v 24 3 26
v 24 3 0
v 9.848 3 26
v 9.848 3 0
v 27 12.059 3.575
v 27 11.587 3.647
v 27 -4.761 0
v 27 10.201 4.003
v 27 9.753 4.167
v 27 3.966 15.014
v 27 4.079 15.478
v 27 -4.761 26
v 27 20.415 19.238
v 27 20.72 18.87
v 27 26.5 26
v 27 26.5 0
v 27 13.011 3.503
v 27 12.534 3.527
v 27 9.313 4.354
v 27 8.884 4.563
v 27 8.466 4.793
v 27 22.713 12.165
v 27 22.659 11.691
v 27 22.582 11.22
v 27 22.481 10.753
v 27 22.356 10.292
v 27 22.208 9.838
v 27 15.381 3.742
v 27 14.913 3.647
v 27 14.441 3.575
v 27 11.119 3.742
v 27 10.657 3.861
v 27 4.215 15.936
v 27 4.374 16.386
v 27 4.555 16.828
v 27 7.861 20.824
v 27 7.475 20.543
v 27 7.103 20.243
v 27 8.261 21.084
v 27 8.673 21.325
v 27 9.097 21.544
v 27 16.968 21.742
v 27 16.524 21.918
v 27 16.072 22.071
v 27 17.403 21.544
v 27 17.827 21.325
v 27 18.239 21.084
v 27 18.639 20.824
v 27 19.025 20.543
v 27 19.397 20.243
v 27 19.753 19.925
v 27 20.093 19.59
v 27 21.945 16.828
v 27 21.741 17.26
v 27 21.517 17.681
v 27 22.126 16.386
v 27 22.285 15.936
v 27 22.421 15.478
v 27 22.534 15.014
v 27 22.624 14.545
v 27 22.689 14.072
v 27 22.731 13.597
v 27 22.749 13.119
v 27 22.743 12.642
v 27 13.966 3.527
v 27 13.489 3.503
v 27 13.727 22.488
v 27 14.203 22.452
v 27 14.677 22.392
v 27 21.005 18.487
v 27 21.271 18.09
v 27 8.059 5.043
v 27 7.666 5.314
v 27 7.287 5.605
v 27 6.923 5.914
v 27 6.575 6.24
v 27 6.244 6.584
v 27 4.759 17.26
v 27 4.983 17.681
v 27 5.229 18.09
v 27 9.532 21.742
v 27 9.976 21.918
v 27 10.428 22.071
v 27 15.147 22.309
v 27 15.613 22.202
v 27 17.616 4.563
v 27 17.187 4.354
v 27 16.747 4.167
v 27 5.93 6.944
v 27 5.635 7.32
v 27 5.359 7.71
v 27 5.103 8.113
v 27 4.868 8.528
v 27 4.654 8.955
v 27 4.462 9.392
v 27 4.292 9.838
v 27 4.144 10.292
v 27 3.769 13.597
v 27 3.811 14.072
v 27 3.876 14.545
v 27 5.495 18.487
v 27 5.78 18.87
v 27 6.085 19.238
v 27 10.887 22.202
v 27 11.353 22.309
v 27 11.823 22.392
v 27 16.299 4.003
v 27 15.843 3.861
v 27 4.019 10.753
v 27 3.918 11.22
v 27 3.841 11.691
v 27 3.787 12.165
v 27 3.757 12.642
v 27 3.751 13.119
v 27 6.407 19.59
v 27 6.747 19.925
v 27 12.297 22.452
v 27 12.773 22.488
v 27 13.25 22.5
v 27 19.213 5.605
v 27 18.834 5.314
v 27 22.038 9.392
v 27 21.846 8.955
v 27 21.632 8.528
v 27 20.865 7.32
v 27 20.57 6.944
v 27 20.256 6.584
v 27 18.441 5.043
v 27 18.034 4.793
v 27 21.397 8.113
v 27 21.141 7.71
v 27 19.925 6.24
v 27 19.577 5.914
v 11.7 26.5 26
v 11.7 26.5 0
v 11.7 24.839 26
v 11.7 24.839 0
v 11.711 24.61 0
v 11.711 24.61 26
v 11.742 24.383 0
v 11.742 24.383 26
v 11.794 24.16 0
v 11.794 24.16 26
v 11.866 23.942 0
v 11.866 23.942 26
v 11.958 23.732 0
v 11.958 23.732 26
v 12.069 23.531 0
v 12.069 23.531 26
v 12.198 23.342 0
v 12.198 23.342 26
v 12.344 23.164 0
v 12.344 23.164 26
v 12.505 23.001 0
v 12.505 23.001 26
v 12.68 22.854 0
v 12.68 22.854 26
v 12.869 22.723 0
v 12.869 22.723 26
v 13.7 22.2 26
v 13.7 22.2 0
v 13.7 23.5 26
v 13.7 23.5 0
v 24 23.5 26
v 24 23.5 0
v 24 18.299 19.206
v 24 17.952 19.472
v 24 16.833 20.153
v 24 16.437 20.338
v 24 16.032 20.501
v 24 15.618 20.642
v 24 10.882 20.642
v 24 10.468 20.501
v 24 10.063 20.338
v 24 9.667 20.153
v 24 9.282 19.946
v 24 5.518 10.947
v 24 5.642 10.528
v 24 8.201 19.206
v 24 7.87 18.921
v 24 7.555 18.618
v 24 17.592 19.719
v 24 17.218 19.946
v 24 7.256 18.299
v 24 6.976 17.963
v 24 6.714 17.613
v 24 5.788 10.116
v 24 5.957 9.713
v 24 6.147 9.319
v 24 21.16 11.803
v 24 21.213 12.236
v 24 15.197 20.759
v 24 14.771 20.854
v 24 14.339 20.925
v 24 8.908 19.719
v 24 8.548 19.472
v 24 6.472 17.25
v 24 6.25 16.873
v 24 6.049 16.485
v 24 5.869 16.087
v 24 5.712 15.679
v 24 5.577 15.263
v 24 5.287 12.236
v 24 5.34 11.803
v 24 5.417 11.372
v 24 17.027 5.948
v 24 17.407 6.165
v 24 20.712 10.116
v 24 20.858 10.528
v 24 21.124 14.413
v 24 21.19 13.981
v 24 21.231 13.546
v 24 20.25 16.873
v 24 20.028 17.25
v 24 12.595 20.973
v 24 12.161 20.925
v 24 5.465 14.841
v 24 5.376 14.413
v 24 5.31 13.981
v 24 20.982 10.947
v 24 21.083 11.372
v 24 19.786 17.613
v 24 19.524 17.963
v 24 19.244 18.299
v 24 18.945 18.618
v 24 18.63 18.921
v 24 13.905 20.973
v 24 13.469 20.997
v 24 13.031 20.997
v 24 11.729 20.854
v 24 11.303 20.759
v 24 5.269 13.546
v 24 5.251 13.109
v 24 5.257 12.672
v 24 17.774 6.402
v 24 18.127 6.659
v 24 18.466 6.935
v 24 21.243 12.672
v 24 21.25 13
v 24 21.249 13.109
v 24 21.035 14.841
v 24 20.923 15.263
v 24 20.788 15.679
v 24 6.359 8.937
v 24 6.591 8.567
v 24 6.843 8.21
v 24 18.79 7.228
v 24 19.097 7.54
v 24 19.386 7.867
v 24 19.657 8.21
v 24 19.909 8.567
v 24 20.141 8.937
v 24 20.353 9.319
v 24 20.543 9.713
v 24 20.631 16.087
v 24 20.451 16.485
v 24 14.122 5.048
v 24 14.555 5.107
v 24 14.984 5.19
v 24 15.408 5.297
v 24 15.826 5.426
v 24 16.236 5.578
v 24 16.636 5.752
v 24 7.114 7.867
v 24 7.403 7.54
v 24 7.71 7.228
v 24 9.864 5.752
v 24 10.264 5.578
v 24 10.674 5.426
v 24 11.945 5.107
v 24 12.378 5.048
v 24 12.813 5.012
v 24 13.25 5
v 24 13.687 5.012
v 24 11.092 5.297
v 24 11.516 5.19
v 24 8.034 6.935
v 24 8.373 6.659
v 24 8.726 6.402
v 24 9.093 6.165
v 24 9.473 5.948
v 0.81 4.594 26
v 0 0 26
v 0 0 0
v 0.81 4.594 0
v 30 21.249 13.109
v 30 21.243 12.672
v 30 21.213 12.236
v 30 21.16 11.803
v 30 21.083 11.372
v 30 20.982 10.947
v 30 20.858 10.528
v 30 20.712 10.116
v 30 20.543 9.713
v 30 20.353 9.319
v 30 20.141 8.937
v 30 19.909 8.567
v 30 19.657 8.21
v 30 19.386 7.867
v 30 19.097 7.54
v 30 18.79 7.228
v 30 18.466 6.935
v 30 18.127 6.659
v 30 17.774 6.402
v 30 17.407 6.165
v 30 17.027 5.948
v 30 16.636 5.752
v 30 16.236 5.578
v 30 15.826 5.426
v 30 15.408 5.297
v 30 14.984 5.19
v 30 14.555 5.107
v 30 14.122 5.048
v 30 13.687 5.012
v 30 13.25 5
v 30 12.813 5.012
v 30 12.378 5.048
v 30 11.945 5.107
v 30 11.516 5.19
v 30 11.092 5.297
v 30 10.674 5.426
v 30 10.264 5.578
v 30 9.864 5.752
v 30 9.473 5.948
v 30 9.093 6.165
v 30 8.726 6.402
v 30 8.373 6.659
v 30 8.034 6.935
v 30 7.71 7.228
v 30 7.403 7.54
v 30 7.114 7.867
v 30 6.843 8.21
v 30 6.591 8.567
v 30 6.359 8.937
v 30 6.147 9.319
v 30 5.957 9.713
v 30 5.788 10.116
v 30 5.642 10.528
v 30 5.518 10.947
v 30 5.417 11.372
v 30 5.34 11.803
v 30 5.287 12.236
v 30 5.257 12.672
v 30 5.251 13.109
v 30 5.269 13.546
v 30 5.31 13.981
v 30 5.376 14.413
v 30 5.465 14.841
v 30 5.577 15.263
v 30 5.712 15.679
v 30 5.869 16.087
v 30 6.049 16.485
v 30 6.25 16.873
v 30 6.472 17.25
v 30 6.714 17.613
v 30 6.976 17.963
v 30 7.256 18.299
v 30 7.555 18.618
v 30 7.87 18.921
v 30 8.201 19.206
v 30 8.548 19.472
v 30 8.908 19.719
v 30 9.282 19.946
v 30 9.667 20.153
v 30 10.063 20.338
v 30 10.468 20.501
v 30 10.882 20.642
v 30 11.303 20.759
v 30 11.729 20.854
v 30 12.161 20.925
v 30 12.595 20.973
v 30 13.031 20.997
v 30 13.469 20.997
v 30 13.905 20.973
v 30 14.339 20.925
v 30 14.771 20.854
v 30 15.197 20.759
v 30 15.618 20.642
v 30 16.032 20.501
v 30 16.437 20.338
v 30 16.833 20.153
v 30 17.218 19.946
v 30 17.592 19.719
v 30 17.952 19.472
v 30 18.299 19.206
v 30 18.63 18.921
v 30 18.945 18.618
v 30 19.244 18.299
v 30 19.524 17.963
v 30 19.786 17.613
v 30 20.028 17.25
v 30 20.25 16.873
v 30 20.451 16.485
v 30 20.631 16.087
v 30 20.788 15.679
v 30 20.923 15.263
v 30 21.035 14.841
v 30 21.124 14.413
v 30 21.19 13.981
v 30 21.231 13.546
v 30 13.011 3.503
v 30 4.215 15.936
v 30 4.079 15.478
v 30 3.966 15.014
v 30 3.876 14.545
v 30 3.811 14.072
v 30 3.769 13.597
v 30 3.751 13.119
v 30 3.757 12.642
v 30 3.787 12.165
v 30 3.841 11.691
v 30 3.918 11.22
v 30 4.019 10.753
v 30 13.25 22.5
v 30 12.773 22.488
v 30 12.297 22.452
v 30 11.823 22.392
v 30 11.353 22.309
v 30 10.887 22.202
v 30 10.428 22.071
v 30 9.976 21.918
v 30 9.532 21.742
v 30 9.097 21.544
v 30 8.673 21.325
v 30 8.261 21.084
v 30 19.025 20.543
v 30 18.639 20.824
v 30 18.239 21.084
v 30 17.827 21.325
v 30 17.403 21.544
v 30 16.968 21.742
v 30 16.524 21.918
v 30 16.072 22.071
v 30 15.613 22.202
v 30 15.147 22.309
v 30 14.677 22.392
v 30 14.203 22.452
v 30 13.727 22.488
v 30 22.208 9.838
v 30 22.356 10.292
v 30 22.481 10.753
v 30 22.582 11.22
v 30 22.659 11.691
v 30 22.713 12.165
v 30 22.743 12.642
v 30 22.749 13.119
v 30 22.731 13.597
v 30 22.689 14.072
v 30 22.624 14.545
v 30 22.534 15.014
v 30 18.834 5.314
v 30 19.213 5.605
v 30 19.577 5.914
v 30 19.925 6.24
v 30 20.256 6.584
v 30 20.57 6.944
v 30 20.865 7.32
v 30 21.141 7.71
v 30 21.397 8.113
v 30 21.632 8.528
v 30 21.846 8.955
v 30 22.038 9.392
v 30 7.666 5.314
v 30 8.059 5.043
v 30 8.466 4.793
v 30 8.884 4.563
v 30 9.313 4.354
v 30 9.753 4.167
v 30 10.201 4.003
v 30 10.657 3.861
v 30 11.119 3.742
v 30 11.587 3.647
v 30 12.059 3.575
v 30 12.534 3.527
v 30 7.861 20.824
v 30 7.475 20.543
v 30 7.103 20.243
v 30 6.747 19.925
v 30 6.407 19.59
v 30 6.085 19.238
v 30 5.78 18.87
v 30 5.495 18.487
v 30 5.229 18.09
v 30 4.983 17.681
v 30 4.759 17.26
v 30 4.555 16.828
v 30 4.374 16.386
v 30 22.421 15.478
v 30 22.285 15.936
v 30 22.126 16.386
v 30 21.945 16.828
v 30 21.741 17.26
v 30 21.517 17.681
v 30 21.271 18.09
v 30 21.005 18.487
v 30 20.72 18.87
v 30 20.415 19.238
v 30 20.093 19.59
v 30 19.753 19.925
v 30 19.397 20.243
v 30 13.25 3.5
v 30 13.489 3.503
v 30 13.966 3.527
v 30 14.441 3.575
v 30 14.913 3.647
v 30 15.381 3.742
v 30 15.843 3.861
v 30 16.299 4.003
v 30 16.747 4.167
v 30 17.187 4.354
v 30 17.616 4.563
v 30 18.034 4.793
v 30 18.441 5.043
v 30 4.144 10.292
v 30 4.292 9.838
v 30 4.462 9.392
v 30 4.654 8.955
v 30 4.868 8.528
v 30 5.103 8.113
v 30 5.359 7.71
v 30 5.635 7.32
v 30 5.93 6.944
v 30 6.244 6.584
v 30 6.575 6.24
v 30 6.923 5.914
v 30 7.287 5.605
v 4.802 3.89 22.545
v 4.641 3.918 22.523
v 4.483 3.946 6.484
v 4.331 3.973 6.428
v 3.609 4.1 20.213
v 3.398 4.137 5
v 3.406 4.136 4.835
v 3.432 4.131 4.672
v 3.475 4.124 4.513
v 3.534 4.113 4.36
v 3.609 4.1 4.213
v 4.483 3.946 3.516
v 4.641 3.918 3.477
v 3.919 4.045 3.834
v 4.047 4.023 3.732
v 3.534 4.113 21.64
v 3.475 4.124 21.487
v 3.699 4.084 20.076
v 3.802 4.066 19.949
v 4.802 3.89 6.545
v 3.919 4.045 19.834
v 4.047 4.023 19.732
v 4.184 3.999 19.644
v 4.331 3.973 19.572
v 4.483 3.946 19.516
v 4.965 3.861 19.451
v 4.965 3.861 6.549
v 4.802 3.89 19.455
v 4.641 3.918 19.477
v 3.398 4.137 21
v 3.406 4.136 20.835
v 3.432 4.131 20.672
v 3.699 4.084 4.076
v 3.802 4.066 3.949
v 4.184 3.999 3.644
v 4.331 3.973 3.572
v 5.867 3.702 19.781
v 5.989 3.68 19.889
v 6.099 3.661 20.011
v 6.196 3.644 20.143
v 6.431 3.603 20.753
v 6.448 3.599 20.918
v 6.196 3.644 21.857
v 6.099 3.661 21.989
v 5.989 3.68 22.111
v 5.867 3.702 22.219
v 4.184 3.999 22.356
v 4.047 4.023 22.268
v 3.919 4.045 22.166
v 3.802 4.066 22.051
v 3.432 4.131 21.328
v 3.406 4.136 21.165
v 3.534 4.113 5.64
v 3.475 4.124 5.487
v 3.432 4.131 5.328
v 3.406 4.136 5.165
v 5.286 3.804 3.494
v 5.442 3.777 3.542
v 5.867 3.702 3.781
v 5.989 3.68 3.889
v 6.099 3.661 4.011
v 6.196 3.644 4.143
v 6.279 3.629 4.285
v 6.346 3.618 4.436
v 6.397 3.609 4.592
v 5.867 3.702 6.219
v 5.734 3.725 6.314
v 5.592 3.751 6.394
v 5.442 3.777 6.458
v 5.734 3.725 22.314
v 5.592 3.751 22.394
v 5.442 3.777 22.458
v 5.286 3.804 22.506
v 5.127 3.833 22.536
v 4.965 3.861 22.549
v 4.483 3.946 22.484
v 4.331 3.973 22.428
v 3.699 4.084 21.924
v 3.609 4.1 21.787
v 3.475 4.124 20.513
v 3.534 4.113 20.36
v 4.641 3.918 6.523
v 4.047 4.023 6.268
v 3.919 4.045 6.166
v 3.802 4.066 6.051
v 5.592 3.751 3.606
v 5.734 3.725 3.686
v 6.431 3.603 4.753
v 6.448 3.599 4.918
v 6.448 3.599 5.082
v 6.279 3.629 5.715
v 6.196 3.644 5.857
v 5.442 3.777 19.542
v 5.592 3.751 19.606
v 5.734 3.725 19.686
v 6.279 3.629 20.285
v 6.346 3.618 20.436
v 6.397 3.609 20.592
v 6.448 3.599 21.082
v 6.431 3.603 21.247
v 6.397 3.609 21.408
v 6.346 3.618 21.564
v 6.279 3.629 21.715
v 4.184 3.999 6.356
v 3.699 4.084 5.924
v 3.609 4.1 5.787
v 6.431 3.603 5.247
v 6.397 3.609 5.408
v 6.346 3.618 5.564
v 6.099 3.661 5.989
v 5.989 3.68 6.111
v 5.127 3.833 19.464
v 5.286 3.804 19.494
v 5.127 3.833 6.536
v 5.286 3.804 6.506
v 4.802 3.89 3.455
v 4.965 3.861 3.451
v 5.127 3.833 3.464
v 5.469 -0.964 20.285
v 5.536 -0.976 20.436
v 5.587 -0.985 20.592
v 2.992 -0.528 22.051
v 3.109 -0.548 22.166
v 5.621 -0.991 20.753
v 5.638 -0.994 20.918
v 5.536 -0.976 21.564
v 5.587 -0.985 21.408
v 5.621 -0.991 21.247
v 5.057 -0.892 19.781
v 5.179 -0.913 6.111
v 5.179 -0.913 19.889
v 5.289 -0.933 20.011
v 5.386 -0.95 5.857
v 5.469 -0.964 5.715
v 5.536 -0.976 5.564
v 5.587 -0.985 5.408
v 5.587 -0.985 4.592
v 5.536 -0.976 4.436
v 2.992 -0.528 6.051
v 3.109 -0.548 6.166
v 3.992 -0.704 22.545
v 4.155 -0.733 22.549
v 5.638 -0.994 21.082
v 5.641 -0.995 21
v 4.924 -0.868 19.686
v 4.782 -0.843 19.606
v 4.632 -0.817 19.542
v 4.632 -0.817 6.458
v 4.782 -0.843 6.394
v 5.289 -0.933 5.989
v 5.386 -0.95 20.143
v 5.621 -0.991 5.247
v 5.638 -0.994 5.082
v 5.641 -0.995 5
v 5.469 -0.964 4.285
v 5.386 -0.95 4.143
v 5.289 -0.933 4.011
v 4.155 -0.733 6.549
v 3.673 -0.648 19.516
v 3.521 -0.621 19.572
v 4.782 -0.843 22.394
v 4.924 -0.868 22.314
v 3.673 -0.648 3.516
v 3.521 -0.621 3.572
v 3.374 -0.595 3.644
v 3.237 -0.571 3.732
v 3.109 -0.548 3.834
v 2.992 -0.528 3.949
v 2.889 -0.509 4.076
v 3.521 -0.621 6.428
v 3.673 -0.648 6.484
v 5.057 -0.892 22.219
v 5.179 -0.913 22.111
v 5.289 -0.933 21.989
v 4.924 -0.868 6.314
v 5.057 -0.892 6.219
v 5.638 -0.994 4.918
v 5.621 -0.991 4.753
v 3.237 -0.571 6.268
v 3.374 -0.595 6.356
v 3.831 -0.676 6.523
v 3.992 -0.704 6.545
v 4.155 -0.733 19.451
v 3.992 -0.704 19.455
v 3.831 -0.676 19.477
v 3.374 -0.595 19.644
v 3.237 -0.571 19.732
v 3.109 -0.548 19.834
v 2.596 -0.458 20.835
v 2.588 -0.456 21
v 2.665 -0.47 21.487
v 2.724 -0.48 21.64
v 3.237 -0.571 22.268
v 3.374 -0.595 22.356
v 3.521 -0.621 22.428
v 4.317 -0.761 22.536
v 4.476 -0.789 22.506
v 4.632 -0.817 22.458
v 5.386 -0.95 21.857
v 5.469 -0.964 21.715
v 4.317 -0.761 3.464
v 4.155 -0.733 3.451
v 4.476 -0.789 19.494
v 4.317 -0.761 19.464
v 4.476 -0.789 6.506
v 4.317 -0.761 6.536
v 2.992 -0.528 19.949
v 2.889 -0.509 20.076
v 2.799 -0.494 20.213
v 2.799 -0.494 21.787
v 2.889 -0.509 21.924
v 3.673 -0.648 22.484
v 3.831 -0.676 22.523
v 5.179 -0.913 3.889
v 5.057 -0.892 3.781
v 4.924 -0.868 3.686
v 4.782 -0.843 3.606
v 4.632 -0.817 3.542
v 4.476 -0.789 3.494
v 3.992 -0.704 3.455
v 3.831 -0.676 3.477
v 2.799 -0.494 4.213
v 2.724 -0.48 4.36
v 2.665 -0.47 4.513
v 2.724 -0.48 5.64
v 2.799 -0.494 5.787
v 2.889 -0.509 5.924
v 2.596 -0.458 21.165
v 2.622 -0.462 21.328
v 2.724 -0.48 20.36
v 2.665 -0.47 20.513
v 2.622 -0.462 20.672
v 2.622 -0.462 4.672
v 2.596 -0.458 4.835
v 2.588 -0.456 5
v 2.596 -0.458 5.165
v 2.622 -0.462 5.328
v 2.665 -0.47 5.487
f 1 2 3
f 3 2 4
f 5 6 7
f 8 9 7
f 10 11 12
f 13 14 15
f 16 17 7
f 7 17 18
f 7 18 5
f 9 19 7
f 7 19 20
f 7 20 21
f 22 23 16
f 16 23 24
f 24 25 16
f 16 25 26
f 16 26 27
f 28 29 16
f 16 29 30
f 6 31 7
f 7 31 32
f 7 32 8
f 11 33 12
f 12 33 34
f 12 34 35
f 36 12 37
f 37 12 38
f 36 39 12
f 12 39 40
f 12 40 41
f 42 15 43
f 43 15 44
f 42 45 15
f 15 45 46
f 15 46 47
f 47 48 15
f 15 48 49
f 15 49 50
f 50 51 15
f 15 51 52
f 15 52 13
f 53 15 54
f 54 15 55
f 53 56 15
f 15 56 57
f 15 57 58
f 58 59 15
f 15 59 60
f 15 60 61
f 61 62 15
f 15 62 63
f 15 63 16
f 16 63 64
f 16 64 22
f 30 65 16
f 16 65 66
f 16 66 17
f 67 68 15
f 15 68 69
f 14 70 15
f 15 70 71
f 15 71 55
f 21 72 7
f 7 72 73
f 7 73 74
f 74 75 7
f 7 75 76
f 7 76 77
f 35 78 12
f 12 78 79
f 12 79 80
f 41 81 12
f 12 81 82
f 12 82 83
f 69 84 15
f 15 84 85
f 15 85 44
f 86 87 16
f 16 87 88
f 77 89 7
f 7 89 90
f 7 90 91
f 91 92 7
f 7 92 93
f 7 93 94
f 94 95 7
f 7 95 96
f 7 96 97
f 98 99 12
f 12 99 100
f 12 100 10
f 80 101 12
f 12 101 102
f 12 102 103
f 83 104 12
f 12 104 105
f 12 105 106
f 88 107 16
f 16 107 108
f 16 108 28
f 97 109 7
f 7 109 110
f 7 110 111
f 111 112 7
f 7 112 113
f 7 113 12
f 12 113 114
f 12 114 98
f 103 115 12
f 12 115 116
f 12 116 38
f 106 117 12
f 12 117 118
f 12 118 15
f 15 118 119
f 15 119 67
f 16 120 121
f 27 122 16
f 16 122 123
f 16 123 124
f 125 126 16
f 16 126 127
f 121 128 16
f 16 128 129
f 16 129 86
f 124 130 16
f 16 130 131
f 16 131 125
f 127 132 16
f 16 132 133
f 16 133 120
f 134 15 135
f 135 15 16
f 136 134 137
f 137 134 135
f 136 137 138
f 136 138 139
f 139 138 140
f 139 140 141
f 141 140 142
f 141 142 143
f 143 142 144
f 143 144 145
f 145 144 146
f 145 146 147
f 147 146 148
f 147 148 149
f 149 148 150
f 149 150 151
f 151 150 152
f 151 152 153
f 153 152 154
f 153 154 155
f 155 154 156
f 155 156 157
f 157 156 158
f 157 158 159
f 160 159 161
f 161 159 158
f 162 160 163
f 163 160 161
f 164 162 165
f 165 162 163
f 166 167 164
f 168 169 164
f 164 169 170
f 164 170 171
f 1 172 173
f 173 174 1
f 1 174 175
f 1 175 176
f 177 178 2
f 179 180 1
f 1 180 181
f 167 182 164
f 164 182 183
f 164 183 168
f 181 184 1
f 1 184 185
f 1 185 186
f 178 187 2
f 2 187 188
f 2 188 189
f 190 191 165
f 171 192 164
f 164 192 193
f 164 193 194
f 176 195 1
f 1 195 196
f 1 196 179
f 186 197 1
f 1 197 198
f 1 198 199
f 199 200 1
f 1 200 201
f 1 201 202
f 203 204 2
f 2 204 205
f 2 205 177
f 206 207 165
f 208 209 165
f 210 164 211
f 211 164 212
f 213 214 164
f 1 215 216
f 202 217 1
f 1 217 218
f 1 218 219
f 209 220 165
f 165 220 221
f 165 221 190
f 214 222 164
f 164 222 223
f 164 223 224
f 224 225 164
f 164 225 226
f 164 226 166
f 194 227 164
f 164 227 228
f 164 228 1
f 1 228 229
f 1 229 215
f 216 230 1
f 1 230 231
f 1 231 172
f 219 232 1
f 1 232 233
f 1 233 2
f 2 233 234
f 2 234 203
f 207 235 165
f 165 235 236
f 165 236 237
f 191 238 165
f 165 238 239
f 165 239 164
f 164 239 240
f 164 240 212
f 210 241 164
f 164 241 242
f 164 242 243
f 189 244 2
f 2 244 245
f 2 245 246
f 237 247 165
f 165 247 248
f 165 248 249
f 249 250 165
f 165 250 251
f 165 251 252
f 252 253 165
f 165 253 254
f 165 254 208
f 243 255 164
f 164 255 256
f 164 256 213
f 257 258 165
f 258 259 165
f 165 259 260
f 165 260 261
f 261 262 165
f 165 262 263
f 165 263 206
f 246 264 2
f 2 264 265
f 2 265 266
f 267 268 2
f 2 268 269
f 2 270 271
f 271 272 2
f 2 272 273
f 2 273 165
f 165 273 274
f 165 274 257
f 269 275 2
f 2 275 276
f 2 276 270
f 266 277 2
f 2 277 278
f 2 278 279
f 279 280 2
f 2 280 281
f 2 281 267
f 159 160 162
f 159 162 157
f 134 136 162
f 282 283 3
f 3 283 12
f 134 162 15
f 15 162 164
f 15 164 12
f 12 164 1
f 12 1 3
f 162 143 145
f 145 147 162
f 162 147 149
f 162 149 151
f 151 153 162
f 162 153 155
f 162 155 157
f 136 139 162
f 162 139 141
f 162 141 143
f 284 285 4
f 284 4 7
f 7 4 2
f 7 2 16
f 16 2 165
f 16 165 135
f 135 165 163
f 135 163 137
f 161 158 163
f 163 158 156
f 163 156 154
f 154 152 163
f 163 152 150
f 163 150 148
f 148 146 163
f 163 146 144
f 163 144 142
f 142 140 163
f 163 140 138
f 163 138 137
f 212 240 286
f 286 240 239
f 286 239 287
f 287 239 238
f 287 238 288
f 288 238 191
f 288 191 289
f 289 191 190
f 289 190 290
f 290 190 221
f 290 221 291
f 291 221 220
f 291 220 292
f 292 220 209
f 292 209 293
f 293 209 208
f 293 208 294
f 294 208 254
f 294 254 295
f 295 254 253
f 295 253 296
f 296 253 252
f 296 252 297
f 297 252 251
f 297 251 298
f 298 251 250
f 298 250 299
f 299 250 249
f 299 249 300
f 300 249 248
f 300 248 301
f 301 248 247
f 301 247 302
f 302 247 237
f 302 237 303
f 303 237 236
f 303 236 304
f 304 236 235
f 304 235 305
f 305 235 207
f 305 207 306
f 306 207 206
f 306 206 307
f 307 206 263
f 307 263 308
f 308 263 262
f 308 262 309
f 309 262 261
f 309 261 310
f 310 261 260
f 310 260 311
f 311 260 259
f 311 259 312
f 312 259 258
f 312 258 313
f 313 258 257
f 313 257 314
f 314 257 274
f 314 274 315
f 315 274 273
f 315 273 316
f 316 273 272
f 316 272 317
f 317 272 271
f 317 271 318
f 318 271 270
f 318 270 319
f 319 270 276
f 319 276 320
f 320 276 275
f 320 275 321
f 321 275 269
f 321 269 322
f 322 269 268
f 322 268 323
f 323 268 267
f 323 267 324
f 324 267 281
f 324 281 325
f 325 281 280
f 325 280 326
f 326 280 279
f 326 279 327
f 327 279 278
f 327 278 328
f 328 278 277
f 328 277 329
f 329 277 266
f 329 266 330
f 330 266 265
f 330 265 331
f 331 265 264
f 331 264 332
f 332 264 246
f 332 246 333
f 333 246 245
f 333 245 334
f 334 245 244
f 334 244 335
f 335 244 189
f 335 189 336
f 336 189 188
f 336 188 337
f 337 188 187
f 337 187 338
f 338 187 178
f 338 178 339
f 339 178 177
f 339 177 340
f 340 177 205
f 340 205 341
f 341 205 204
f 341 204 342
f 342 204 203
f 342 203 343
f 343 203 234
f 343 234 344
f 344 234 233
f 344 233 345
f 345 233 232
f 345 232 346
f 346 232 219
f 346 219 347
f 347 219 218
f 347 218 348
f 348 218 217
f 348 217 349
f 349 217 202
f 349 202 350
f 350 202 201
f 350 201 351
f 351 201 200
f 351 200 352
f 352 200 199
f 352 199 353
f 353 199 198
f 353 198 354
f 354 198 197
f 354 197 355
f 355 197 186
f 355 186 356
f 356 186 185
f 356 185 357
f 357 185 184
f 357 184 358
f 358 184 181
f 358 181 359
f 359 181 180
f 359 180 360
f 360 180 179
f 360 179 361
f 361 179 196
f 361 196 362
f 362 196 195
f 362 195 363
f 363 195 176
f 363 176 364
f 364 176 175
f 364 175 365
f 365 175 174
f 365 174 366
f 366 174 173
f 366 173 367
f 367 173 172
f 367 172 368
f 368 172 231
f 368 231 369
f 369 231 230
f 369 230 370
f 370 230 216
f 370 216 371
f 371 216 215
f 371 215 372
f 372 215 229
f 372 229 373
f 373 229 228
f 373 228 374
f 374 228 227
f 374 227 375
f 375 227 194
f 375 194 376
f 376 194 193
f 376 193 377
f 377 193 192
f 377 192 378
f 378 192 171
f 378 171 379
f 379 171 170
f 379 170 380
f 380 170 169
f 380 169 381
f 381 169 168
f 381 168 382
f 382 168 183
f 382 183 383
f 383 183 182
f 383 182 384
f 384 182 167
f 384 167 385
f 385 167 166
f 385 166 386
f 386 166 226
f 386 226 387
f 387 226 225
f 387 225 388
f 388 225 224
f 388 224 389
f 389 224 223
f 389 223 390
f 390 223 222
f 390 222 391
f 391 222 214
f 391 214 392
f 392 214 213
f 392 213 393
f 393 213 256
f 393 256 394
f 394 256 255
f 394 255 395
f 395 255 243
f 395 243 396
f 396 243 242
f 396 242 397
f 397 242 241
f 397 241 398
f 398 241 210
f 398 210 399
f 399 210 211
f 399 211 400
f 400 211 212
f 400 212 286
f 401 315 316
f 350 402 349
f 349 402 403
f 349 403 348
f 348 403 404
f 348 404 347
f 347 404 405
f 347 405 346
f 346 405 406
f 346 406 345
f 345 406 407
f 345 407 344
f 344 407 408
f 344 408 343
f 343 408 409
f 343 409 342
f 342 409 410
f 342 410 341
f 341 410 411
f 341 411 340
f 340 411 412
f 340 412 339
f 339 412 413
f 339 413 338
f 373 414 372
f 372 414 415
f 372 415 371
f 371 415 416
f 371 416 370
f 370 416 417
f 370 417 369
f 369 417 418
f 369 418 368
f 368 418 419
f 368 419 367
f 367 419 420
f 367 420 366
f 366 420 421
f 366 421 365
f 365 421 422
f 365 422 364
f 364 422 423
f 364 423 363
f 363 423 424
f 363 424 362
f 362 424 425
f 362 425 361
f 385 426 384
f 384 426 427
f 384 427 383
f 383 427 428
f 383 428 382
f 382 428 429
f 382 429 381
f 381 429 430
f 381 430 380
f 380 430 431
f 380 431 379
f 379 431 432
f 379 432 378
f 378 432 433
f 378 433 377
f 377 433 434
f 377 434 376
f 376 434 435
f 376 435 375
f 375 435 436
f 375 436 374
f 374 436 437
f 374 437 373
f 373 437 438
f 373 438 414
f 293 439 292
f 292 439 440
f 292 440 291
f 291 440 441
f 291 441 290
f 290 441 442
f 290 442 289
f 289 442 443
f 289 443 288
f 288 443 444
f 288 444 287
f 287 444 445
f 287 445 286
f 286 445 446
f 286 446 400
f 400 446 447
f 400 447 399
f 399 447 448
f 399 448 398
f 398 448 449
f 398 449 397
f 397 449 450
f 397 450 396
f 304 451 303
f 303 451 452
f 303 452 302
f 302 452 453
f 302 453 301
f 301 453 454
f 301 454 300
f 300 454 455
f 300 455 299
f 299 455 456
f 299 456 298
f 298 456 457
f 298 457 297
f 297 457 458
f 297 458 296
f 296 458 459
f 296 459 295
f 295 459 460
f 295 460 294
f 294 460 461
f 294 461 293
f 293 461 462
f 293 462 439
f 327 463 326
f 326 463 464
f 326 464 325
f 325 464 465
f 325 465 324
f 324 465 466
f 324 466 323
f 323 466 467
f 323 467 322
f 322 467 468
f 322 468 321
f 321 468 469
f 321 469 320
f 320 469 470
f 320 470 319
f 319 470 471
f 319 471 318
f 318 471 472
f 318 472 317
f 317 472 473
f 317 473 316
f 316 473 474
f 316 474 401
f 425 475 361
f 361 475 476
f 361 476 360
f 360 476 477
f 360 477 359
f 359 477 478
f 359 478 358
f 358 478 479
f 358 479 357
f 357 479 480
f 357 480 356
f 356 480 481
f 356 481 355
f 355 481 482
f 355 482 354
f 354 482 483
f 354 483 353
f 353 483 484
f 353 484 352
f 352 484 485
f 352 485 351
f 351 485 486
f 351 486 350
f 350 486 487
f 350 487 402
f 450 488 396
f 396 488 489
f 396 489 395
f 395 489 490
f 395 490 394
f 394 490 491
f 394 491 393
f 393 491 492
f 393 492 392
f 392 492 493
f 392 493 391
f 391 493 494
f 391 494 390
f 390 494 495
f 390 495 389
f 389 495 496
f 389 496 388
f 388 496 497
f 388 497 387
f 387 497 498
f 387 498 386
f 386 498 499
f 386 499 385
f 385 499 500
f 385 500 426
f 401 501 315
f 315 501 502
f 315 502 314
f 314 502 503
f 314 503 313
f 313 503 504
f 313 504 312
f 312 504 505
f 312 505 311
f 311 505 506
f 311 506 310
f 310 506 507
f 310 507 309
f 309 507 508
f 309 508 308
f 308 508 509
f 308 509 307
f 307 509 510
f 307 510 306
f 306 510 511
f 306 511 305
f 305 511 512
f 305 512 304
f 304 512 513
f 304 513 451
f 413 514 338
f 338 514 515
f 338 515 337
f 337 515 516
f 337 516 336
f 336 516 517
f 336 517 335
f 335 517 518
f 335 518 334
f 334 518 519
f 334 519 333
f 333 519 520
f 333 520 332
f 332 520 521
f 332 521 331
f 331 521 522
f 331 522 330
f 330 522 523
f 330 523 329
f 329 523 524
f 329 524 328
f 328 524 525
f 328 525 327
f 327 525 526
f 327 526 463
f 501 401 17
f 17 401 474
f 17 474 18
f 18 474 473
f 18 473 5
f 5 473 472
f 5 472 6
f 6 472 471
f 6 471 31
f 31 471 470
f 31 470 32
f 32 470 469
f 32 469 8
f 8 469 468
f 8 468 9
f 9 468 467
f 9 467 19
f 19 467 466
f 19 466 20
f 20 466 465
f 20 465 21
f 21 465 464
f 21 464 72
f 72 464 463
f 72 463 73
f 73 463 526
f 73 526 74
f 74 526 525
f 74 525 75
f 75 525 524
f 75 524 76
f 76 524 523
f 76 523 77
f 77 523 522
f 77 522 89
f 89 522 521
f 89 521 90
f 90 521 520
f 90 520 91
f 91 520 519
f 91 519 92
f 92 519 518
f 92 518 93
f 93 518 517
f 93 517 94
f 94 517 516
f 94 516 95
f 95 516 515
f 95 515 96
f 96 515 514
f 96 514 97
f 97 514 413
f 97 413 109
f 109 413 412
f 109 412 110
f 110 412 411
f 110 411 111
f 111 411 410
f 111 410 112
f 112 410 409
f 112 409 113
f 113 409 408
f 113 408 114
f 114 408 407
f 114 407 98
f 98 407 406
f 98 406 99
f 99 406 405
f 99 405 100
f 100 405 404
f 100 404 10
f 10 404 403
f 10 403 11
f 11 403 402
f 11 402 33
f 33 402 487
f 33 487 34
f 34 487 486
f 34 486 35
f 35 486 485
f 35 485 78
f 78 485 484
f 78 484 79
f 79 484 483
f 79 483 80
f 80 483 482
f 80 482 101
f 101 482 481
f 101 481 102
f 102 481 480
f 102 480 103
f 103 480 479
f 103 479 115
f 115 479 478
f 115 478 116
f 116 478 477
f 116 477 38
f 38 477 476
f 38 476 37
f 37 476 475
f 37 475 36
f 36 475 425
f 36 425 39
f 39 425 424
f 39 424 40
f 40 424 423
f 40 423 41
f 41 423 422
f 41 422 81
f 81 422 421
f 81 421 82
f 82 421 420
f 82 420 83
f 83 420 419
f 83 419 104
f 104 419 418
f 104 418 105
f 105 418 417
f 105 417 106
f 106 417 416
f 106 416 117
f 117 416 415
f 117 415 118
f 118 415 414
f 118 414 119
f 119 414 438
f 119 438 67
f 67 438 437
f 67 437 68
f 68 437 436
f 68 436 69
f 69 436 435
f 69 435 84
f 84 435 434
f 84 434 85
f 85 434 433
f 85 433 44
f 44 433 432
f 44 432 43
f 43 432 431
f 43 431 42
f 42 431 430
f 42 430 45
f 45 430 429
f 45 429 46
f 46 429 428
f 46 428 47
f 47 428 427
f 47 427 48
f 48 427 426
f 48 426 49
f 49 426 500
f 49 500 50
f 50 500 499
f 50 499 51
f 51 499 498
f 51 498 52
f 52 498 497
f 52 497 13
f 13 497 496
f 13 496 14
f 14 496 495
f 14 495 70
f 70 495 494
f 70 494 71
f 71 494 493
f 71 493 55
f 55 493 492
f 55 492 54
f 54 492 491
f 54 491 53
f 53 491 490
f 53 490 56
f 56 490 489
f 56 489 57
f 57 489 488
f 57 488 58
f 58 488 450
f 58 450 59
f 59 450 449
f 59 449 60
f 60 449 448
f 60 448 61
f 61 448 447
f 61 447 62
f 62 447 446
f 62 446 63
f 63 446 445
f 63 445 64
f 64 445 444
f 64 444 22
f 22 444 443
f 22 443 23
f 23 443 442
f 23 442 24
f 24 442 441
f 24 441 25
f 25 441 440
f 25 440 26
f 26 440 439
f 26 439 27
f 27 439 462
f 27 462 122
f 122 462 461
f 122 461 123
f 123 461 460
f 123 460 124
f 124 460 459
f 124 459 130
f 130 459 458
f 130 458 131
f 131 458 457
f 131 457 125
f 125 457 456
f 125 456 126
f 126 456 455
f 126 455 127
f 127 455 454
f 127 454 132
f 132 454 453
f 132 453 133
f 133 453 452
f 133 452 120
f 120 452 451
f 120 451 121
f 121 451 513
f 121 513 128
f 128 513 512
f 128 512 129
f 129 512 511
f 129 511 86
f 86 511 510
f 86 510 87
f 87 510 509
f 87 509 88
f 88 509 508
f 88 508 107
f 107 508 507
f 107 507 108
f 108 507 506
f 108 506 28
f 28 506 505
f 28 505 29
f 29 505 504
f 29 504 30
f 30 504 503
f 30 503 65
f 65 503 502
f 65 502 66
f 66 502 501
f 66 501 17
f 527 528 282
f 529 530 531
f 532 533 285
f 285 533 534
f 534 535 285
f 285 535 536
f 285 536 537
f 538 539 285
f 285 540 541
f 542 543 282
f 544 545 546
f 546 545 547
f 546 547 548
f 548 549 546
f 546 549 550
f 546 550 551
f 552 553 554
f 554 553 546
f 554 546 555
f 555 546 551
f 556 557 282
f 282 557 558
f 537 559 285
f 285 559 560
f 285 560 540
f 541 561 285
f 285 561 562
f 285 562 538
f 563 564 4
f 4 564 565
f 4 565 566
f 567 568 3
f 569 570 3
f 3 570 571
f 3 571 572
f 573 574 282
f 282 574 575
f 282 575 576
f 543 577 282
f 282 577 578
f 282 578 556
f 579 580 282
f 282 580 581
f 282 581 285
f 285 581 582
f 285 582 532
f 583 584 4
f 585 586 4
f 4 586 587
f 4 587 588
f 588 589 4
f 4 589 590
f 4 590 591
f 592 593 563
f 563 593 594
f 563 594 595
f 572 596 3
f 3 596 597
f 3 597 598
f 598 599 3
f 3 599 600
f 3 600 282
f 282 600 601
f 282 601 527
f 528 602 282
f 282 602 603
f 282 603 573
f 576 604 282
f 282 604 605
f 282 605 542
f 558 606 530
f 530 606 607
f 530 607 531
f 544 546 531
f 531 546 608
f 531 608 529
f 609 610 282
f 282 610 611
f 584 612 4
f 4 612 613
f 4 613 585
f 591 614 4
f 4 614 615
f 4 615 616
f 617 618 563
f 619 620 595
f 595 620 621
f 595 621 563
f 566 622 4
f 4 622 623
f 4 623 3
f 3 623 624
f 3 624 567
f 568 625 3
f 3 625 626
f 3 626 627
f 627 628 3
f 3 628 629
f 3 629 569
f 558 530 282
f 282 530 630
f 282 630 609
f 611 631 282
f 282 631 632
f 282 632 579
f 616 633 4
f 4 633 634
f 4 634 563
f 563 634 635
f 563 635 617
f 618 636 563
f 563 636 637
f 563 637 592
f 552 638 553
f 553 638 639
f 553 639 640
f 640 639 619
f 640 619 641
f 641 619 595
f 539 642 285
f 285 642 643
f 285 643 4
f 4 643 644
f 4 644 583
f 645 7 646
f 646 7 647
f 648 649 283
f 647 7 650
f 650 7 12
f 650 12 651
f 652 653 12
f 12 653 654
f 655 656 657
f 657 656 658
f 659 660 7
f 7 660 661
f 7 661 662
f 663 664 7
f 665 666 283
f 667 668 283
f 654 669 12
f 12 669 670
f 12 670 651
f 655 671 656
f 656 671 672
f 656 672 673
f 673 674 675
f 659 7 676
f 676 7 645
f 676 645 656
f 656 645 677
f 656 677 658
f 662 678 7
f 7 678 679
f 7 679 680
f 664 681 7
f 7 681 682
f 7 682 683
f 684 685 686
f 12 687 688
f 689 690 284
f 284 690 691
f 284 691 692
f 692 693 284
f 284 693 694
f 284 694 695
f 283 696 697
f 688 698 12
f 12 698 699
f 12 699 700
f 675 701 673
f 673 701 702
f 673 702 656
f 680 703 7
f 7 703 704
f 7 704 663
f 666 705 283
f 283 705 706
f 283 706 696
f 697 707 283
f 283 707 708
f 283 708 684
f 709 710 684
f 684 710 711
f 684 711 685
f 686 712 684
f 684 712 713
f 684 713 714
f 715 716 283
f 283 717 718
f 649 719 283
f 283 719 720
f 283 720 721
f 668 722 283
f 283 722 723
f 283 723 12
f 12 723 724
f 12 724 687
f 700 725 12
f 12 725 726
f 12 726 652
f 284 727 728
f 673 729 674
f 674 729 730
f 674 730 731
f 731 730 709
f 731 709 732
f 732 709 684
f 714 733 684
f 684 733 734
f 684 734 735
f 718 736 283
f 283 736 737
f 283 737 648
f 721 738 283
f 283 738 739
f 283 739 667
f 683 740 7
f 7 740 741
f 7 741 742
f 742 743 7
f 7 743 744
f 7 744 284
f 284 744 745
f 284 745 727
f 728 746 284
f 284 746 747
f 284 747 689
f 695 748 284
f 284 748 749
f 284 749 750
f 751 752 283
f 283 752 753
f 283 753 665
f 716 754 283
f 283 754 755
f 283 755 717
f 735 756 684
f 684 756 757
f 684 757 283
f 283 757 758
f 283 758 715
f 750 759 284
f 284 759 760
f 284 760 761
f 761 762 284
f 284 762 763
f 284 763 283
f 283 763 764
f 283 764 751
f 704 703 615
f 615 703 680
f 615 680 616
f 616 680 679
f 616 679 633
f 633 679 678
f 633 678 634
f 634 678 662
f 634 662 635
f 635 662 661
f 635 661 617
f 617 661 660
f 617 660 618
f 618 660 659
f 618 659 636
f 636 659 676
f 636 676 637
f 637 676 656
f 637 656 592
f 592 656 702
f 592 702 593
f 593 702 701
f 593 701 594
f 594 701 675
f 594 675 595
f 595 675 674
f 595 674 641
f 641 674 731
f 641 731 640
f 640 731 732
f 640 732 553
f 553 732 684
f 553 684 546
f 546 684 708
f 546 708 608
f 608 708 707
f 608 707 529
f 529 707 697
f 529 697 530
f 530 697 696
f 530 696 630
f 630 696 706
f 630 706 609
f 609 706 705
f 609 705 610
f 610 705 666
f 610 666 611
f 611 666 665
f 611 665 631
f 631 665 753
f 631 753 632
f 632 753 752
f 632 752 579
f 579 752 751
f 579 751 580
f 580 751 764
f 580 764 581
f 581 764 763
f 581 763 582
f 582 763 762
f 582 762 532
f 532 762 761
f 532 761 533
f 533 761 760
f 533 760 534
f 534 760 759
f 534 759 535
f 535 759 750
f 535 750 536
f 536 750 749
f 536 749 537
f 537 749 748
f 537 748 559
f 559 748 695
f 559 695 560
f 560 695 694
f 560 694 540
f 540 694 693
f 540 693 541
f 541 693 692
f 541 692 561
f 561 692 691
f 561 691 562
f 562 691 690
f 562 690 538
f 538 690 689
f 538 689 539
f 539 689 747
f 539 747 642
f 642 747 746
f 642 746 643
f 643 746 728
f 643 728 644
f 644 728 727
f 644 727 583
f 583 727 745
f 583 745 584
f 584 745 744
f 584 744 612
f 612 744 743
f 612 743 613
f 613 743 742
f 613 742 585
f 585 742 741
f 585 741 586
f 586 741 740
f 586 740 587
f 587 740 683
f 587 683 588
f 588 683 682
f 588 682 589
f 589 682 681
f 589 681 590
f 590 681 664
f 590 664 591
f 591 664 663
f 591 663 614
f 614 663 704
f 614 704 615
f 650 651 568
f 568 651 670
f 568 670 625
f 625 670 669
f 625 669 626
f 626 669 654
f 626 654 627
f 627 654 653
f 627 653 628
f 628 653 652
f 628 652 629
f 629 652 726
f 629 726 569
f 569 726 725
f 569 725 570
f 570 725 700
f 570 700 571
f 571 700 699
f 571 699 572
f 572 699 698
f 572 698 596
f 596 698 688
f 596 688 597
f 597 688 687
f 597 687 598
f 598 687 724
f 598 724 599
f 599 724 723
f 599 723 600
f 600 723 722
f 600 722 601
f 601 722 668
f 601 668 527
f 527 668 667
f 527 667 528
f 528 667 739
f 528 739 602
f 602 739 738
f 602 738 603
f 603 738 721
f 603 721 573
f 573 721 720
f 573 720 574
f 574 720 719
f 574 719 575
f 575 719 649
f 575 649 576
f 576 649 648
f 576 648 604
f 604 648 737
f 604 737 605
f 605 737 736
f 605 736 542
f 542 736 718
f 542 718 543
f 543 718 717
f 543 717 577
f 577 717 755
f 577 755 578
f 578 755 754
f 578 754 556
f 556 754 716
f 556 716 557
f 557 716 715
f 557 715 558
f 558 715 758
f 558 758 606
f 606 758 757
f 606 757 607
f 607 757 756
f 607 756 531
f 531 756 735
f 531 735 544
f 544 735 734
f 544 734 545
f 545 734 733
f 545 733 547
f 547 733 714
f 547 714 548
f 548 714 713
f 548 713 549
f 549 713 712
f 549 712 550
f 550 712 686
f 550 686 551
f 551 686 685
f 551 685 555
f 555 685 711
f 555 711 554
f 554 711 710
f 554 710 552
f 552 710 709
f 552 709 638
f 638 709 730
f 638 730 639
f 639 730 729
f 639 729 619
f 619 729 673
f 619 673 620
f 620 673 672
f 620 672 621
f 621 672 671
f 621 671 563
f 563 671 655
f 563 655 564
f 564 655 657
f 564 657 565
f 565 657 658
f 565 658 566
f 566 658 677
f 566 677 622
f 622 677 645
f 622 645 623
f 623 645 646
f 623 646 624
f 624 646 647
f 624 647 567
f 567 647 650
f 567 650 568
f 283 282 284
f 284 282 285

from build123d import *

# Parameters (mm, degrees)
BOSS_EXTRUDE1_DEPTH = 26
SKETCH2_R           = 8
CUT_EXTRUDE1_DEPTH  = 26
SKETCH3_R           = 9.5
SKETCH3_R_2         = 8
BOSS_EXTRUDE2_DEPTH = 3
BOSS_EXTRUDE4_DEPTH = 26
SKETCH5_R           = 1.55
CUT_EXTRUDE2_DEPTH  = 10.353024773
CUT_EXTRUDE3_DEPTH  = 27


with BuildPart() as part:
    # Sketch1 → Boss-Extrude1 (new body)
    with BuildSketch(Plane.XY):
        with BuildLine():
            Line((0, 0), (27, 0))
            Line((27, 0), (27, 26.5))
            Line((27, 26.5), (13.7, 26.5))
            Line((13.7, 26.5), (11.7, 26.5))
            Line((11.7, 26.5), (11.7, 24.839060942))
            ThreePointArc((11.7, 24.839060942), (12.011588642, 23.630402293), (12.868684584, 22.72302709))
            Line((12.868684584, 22.72302709), (13.7, 22.2))
            Line((13.7, 22.2), (13.7, 23.5))
            Line((13.7, 23.5), (24, 23.5))
            Line((24, 23.5), (24, 3))
            Line((24, 3), (0, 3))
            Line((0, 3), (0, 0))
        make_face()
    extrude(amount=BOSS_EXTRUDE1_DEPTH)

    # Sketch2 → Cut-Extrude1 (cut)
    with BuildSketch(Plane(origin=(27, 0, 0), x_dir=(0, 0, -1), z_dir=(1, 0, 0))):
        with Locations((-13, 13.25)):
            Circle(SKETCH2_R)
    extrude(amount=-CUT_EXTRUDE1_DEPTH, mode=Mode.SUBTRACT)

    # Sketch3 → Boss-Extrude2 (add)
    with BuildSketch(Plane(origin=(27, 0, 0), x_dir=(0, 0, -1), z_dir=(1, 0, 0))):
        with Locations((-13, 13.25)):
            Circle(SKETCH3_R)
        with Locations((-13, 13.25)):
            Circle(SKETCH3_R_2, mode=Mode.SUBTRACT)
    extrude(amount=BOSS_EXTRUDE2_DEPTH)

    # Sketch4 → Boss-Extrude4 (add)
    with BuildSketch(Plane(origin=(0, 0, 0), x_dir=(-1, 0, 0), z_dir=(0, 0, -1))):
        Polygon((-9.84807753, 3), (0, 3), (0, 4.736481777), align=None)
        Polygon((-27, 0), (0, 0), (-27, -4.760828479), align=None)
    extrude(amount=-BOSS_EXTRUDE4_DEPTH)

    # Sketch5 → Cut-Extrude2 (cut, through all)
    with BuildSketch(Plane(origin=(0.809986088, 4.593659375, 0), x_dir=(0.984807753, -0.173648178, 0), z_dir=(0.173648178, 0.984807753, 0))):
        with Locations((4.177518571, -5)):
            Circle(SKETCH5_R)
        with Locations((4.177518571, -21)):
            Circle(SKETCH5_R)
    extrude(amount=-CUT_EXTRUDE2_DEPTH, mode=Mode.SUBTRACT)

    # Sketch6 → Cut-Extrude3 (cut, through all)
    with BuildSketch(Plane(origin=(0, 0, 0), x_dir=(-1, 0, 0), z_dir=(0, 0, -1))):
        Polygon((0, 0), (-0.809986088, 4.593659375), (0, 4.736481777), align=None)
    extrude(amount=-CUT_EXTRUDE3_DEPTH, mode=Mode.SUBTRACT)


solid = part.part
